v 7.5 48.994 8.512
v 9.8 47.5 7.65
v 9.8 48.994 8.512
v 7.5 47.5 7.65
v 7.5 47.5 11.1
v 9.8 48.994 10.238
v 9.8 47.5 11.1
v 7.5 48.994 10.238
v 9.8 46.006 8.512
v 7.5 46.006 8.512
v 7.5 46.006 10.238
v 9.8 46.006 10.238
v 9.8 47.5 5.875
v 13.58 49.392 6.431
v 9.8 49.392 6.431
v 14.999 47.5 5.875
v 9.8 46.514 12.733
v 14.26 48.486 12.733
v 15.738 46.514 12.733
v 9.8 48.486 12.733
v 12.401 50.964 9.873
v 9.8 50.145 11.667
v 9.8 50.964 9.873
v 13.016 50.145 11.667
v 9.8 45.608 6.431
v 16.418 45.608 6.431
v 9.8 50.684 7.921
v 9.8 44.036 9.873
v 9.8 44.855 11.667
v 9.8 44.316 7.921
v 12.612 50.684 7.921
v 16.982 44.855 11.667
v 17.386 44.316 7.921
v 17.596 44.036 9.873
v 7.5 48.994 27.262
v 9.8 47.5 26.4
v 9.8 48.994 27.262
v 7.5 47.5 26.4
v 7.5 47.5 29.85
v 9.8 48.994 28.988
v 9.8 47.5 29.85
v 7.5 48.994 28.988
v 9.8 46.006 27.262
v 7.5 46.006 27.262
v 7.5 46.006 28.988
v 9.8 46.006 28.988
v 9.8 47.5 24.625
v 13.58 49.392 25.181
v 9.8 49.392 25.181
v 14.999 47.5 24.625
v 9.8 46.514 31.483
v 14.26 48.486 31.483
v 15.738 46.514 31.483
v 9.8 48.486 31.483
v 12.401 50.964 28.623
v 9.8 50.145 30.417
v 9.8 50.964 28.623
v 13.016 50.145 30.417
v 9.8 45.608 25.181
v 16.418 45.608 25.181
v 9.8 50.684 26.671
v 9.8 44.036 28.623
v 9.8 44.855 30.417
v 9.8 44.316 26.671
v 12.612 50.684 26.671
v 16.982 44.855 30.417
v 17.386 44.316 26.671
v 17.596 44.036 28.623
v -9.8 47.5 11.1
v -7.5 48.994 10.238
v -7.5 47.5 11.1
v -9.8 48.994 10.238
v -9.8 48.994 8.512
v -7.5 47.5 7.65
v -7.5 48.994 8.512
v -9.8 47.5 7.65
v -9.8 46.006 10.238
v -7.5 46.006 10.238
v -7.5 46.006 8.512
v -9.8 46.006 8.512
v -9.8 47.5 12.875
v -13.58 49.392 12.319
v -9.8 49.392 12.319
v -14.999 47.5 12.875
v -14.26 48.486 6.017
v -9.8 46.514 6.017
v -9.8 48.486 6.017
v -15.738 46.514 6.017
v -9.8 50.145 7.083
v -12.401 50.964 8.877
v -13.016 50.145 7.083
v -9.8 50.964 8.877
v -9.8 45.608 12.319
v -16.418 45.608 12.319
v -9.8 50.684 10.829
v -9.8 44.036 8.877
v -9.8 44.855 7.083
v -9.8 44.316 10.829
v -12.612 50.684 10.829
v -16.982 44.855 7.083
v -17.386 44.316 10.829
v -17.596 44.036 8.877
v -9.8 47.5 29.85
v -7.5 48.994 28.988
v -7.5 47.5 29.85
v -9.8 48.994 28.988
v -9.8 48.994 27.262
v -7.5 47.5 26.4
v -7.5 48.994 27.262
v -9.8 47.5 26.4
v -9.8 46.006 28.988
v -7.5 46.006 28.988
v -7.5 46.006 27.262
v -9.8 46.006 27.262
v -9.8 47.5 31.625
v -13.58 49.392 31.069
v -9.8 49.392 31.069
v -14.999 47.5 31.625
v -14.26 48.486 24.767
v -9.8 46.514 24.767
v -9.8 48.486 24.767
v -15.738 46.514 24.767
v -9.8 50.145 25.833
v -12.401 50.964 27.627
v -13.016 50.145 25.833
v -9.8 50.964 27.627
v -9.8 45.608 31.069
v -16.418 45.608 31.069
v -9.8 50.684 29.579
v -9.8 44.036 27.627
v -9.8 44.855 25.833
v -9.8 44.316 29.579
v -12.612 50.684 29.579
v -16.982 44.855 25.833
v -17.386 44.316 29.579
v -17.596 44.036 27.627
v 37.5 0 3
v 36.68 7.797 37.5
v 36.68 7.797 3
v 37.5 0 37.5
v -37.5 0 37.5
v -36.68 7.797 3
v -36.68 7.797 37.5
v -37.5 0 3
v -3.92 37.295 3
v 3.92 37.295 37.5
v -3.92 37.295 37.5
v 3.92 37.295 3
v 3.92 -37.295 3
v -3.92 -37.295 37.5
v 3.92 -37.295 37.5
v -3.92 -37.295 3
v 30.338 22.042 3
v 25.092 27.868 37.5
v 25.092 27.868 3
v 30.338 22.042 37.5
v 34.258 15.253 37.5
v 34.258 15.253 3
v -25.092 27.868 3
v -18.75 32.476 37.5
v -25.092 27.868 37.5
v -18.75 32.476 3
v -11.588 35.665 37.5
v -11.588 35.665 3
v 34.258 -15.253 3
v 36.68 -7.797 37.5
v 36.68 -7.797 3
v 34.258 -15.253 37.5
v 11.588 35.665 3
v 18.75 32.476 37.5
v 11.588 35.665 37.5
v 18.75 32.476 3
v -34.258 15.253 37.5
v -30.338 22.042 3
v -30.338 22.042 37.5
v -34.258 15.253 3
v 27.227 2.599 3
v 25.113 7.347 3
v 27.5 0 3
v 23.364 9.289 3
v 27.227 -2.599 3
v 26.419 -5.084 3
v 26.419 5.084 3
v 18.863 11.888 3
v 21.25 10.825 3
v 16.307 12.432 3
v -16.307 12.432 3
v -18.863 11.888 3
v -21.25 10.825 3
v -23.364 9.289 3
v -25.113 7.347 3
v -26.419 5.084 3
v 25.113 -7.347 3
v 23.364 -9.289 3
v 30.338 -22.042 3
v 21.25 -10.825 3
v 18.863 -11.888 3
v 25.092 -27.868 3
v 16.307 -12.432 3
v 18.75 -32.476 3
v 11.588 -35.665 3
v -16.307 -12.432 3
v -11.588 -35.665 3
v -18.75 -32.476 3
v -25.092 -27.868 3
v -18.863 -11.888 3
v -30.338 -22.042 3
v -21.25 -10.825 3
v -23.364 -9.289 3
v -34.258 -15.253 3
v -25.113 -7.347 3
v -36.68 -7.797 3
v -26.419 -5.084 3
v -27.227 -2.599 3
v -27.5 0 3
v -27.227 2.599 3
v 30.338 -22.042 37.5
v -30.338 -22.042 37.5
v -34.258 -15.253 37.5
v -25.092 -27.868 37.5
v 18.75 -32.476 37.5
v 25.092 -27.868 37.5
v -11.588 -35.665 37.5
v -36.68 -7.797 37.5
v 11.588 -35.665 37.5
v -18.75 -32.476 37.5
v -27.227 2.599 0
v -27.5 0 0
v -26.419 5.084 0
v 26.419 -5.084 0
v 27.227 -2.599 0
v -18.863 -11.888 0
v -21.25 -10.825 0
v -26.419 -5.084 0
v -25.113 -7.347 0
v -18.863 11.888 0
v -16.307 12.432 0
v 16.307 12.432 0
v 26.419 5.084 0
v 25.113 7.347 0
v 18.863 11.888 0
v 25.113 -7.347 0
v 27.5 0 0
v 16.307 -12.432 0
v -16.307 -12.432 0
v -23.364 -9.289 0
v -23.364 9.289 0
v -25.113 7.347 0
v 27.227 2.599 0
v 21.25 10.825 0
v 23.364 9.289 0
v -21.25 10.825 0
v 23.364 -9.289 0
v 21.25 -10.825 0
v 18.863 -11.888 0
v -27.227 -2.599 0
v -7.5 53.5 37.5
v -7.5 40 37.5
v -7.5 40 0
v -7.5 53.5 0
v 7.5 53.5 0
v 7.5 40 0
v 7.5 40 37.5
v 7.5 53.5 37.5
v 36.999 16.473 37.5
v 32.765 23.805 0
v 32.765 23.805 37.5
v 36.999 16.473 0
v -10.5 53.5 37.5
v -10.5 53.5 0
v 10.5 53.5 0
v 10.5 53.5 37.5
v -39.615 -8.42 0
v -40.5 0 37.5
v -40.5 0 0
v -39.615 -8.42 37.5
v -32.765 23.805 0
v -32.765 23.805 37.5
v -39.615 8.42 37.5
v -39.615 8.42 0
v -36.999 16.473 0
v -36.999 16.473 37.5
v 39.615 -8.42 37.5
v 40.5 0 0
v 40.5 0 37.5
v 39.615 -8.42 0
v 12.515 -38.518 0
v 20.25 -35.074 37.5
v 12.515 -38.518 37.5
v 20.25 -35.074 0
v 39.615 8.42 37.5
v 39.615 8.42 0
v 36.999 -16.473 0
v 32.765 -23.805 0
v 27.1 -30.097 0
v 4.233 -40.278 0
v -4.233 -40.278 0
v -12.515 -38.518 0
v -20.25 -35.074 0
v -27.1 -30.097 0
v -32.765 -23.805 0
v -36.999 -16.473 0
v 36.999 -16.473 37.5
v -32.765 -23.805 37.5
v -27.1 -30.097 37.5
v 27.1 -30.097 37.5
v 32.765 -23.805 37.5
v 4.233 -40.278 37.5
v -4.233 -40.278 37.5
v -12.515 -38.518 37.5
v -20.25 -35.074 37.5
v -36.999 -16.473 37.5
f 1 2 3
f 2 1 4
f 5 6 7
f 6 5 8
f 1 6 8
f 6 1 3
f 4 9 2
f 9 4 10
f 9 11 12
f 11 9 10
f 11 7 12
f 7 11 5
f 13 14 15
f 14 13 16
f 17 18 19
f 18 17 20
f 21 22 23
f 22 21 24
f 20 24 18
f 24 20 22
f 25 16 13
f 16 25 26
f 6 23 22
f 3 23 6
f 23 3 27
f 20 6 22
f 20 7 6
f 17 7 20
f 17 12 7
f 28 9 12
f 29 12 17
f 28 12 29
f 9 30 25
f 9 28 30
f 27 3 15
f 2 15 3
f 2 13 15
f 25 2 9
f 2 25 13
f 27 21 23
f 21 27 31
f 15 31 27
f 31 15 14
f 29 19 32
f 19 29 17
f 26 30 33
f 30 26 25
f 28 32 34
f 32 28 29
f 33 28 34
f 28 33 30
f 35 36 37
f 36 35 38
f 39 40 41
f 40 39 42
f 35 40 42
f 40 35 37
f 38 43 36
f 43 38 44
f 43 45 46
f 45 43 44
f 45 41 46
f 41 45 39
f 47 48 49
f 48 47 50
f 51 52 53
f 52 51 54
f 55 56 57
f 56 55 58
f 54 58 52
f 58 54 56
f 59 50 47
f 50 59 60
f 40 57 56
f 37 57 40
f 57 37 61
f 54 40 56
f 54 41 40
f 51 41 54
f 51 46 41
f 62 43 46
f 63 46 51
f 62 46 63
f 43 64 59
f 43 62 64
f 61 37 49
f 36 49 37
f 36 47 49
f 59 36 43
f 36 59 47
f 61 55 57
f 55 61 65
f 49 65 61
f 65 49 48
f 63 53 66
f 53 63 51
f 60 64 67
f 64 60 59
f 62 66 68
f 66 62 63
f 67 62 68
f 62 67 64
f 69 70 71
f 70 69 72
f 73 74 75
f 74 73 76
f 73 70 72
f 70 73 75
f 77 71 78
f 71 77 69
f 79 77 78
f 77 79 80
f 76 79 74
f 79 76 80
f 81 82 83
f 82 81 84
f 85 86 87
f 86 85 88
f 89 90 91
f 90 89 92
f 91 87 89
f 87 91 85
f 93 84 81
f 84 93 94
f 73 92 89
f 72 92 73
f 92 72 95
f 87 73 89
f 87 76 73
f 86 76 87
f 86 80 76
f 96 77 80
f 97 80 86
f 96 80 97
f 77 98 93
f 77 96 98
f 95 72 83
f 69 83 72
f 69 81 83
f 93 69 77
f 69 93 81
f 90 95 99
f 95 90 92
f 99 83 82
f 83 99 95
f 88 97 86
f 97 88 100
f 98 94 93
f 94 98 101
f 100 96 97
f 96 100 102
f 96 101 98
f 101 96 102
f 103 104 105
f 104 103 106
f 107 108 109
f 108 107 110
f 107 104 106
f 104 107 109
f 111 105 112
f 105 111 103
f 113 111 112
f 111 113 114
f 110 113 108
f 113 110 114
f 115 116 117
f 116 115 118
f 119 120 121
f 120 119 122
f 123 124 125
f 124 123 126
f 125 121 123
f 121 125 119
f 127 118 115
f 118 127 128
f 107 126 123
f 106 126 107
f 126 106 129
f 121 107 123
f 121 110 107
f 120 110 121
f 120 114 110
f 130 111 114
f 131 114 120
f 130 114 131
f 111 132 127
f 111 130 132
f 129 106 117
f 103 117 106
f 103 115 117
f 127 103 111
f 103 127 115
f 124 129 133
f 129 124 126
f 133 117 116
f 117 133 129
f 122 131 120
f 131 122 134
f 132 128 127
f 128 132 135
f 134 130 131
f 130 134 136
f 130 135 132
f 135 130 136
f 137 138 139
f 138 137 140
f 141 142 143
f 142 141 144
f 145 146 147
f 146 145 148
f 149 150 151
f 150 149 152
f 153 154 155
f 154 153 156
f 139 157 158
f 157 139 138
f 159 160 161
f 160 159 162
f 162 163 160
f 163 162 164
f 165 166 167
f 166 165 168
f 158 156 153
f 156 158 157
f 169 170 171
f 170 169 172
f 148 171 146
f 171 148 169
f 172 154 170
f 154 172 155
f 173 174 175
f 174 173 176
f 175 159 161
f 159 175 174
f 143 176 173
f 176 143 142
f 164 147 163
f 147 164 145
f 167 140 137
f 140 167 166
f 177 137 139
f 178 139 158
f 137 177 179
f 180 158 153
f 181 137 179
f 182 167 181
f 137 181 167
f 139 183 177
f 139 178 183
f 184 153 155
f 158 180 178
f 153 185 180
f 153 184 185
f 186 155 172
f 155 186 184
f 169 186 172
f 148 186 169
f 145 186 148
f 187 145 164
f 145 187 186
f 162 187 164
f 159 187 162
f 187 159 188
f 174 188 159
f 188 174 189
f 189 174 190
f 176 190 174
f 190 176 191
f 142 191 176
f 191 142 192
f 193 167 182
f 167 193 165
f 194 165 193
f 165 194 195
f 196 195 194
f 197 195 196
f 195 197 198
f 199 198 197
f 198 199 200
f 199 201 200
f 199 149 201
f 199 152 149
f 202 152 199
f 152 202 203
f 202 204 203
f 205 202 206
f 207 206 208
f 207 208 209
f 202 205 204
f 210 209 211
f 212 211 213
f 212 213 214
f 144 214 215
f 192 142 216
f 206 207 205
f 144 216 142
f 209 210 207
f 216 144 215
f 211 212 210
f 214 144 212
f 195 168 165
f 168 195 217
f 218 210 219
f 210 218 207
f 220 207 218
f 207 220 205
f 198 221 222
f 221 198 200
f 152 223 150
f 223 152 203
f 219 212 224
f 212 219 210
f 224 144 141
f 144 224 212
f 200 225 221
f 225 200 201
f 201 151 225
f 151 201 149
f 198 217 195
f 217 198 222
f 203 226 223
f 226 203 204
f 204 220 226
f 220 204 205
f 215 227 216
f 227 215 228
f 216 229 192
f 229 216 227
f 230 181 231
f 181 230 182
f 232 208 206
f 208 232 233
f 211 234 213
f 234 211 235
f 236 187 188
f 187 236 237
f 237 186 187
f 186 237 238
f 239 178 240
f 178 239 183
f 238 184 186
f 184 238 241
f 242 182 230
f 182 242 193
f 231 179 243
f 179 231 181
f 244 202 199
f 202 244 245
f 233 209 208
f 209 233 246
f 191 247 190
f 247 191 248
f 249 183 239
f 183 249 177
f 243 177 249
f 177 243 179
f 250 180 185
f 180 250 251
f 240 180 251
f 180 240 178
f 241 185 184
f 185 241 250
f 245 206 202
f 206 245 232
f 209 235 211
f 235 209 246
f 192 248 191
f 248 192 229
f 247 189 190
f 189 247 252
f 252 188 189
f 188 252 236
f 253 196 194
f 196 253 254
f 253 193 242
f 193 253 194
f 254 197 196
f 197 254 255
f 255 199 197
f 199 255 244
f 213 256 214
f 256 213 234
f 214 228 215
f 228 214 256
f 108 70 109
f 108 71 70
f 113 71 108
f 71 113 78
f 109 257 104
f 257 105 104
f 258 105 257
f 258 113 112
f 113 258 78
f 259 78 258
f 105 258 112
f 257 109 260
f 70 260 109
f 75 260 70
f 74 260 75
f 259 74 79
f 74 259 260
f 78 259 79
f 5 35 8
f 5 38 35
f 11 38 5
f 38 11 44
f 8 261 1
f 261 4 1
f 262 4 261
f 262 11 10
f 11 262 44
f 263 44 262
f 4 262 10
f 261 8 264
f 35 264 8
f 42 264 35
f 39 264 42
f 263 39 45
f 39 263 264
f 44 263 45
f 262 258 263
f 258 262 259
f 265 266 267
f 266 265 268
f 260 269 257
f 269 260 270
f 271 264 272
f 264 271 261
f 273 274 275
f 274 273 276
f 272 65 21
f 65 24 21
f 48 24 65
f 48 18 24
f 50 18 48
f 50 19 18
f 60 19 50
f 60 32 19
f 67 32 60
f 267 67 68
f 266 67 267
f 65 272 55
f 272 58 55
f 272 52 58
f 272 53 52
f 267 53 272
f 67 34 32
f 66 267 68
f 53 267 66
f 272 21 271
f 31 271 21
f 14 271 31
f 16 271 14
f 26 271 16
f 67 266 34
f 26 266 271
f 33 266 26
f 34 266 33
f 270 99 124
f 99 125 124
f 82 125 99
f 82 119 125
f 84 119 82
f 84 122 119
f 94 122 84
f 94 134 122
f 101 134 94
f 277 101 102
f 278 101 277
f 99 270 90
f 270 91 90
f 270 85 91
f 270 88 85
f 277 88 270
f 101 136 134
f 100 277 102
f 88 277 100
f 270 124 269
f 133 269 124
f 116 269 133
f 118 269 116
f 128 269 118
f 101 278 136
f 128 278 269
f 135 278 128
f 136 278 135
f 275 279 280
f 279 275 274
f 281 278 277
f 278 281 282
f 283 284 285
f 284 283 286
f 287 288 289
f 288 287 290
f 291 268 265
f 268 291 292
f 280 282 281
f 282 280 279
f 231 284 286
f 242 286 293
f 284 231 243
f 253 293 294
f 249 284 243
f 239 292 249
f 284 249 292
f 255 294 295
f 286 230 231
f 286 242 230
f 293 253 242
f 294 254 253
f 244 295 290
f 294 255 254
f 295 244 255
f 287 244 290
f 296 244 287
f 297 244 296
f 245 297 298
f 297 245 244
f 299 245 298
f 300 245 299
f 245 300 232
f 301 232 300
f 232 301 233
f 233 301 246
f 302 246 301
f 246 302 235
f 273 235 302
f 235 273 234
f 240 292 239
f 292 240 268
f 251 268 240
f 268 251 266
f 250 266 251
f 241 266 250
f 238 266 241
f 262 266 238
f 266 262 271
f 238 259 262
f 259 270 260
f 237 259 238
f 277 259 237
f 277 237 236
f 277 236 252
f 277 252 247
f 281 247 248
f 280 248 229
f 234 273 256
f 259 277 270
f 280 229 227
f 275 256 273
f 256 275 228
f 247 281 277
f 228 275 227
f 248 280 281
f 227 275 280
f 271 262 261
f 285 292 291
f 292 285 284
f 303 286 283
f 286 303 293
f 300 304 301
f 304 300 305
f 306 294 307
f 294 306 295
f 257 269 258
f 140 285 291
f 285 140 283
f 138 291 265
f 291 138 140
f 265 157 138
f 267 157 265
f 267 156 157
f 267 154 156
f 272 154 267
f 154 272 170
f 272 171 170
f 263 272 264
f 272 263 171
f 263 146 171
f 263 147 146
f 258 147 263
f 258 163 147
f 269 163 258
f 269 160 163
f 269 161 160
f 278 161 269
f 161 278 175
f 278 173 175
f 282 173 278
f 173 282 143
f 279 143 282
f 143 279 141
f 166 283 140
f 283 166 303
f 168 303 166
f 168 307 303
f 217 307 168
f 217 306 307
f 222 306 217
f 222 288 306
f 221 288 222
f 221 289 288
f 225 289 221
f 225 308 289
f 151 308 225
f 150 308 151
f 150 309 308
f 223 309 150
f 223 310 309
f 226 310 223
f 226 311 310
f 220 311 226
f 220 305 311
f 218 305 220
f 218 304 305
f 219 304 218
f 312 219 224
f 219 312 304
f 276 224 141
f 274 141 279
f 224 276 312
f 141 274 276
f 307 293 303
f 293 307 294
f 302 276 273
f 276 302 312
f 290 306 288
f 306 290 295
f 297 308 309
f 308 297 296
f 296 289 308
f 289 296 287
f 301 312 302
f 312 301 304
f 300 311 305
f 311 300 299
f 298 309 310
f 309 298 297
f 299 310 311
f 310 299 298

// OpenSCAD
// file: configuration.scad
// Increase this if your slicer or printer make holes too tight.
extra_radius = 0.1;

// OD = outside diameter, corner to corner.
m3_nut_od = 6.1;
m3_nut_radius = m3_nut_od/2 + 0.2 + extra_radius;
m3_nut_thickness = 2.4 + extra_radius;
m3_washer_radius = 3.5 + extra_radius;

// Major diameter of metric 3mm thread.
m3_major = 2.85;
m3_radius = m3_major/2 + extra_radius;
m3_wide_radius = m3_major/2 + extra_radius + 0.2;

// OD = outside diameter, corner to corner.
m4_nut_od = 7.1;
m4_nut_radius = m4_nut_od/2 + 0.2 + extra_radius;
m4_thickness = 3.82 + extra_radius;
m4_washer_radius = 4.5 + extra_radius;

// Major diameter of metric 3mm thread.
m4_major = 3.85;
m4_radius = m4_major/2 + extra_radius;
m4_wide_radius = m4_major/2 + extra_radius + 0.2;

// NEMA17 stepper motors.
motor_shaft_diameter = 5;
motor_shaft_radius = motor_shaft_diameter/2 + extra_radius;

// Frame brackets. M3x8mm screws work best with 3.6 mm brackets.
thickness = 3.6;

// OpenBeam or Misumi. Currently only 15x15 mm, but there is a plan
// to make models more parametric and allow 20x20 mm in the future.
extrusion = 15;

// Placement for the NEMA17 stepper motors.
motor_offset = 44;
motor_length = 47;
// main file
include <configuration.scad>;

reservoir_radius = 75 / 2;
reservoir_height = 75 * 2;
thickness = 3;

module screw_socket() {
  cylinder(r=m3_wide_radius, h=10, center=true);
  translate([0, 0, 3.8]) cylinder(r=3.5, h=8);
}

module reservoir_mount() {
  difference() {
    hull() {
      translate([0, 0, reservoir_height/8])
        cylinder(r=reservoir_radius + thickness, h=reservoir_height/4, center=true);

      translate([0, reservoir_radius + 10 - thickness, reservoir_height/8])
        cube([15 + thickness*2, 15 + thickness, reservoir_height/4], center=true);
    }
    union() {
      translate([0, 0, reservoir_height/2 + thickness])
        cylinder(r=reservoir_radius, h=reservoir_height, center=true);

      hull() {
        for (a = [1, -1]) {
          translate([reservoir_radius/2.5*a, 0, thickness/2])
            cylinder(r=reservoir_radius/3, h=thickness+2, center=true);
        }
      }

      translate([0, reservoir_radius + 10, reservoir_height/8])
        cube([15, 15, reservoir_height/4+2], center=true);

      for (a = [1, -1]) {
        for (z = [reservoir_height/16, -reservoir_height/16]) {
          translate([6*a, reservoir_radius+10, reservoir_height/8-z]) rotate([0, 90*a, 0])
            # screw_socket();
        }
      }
    }
  }
}

reservoir_mount();
